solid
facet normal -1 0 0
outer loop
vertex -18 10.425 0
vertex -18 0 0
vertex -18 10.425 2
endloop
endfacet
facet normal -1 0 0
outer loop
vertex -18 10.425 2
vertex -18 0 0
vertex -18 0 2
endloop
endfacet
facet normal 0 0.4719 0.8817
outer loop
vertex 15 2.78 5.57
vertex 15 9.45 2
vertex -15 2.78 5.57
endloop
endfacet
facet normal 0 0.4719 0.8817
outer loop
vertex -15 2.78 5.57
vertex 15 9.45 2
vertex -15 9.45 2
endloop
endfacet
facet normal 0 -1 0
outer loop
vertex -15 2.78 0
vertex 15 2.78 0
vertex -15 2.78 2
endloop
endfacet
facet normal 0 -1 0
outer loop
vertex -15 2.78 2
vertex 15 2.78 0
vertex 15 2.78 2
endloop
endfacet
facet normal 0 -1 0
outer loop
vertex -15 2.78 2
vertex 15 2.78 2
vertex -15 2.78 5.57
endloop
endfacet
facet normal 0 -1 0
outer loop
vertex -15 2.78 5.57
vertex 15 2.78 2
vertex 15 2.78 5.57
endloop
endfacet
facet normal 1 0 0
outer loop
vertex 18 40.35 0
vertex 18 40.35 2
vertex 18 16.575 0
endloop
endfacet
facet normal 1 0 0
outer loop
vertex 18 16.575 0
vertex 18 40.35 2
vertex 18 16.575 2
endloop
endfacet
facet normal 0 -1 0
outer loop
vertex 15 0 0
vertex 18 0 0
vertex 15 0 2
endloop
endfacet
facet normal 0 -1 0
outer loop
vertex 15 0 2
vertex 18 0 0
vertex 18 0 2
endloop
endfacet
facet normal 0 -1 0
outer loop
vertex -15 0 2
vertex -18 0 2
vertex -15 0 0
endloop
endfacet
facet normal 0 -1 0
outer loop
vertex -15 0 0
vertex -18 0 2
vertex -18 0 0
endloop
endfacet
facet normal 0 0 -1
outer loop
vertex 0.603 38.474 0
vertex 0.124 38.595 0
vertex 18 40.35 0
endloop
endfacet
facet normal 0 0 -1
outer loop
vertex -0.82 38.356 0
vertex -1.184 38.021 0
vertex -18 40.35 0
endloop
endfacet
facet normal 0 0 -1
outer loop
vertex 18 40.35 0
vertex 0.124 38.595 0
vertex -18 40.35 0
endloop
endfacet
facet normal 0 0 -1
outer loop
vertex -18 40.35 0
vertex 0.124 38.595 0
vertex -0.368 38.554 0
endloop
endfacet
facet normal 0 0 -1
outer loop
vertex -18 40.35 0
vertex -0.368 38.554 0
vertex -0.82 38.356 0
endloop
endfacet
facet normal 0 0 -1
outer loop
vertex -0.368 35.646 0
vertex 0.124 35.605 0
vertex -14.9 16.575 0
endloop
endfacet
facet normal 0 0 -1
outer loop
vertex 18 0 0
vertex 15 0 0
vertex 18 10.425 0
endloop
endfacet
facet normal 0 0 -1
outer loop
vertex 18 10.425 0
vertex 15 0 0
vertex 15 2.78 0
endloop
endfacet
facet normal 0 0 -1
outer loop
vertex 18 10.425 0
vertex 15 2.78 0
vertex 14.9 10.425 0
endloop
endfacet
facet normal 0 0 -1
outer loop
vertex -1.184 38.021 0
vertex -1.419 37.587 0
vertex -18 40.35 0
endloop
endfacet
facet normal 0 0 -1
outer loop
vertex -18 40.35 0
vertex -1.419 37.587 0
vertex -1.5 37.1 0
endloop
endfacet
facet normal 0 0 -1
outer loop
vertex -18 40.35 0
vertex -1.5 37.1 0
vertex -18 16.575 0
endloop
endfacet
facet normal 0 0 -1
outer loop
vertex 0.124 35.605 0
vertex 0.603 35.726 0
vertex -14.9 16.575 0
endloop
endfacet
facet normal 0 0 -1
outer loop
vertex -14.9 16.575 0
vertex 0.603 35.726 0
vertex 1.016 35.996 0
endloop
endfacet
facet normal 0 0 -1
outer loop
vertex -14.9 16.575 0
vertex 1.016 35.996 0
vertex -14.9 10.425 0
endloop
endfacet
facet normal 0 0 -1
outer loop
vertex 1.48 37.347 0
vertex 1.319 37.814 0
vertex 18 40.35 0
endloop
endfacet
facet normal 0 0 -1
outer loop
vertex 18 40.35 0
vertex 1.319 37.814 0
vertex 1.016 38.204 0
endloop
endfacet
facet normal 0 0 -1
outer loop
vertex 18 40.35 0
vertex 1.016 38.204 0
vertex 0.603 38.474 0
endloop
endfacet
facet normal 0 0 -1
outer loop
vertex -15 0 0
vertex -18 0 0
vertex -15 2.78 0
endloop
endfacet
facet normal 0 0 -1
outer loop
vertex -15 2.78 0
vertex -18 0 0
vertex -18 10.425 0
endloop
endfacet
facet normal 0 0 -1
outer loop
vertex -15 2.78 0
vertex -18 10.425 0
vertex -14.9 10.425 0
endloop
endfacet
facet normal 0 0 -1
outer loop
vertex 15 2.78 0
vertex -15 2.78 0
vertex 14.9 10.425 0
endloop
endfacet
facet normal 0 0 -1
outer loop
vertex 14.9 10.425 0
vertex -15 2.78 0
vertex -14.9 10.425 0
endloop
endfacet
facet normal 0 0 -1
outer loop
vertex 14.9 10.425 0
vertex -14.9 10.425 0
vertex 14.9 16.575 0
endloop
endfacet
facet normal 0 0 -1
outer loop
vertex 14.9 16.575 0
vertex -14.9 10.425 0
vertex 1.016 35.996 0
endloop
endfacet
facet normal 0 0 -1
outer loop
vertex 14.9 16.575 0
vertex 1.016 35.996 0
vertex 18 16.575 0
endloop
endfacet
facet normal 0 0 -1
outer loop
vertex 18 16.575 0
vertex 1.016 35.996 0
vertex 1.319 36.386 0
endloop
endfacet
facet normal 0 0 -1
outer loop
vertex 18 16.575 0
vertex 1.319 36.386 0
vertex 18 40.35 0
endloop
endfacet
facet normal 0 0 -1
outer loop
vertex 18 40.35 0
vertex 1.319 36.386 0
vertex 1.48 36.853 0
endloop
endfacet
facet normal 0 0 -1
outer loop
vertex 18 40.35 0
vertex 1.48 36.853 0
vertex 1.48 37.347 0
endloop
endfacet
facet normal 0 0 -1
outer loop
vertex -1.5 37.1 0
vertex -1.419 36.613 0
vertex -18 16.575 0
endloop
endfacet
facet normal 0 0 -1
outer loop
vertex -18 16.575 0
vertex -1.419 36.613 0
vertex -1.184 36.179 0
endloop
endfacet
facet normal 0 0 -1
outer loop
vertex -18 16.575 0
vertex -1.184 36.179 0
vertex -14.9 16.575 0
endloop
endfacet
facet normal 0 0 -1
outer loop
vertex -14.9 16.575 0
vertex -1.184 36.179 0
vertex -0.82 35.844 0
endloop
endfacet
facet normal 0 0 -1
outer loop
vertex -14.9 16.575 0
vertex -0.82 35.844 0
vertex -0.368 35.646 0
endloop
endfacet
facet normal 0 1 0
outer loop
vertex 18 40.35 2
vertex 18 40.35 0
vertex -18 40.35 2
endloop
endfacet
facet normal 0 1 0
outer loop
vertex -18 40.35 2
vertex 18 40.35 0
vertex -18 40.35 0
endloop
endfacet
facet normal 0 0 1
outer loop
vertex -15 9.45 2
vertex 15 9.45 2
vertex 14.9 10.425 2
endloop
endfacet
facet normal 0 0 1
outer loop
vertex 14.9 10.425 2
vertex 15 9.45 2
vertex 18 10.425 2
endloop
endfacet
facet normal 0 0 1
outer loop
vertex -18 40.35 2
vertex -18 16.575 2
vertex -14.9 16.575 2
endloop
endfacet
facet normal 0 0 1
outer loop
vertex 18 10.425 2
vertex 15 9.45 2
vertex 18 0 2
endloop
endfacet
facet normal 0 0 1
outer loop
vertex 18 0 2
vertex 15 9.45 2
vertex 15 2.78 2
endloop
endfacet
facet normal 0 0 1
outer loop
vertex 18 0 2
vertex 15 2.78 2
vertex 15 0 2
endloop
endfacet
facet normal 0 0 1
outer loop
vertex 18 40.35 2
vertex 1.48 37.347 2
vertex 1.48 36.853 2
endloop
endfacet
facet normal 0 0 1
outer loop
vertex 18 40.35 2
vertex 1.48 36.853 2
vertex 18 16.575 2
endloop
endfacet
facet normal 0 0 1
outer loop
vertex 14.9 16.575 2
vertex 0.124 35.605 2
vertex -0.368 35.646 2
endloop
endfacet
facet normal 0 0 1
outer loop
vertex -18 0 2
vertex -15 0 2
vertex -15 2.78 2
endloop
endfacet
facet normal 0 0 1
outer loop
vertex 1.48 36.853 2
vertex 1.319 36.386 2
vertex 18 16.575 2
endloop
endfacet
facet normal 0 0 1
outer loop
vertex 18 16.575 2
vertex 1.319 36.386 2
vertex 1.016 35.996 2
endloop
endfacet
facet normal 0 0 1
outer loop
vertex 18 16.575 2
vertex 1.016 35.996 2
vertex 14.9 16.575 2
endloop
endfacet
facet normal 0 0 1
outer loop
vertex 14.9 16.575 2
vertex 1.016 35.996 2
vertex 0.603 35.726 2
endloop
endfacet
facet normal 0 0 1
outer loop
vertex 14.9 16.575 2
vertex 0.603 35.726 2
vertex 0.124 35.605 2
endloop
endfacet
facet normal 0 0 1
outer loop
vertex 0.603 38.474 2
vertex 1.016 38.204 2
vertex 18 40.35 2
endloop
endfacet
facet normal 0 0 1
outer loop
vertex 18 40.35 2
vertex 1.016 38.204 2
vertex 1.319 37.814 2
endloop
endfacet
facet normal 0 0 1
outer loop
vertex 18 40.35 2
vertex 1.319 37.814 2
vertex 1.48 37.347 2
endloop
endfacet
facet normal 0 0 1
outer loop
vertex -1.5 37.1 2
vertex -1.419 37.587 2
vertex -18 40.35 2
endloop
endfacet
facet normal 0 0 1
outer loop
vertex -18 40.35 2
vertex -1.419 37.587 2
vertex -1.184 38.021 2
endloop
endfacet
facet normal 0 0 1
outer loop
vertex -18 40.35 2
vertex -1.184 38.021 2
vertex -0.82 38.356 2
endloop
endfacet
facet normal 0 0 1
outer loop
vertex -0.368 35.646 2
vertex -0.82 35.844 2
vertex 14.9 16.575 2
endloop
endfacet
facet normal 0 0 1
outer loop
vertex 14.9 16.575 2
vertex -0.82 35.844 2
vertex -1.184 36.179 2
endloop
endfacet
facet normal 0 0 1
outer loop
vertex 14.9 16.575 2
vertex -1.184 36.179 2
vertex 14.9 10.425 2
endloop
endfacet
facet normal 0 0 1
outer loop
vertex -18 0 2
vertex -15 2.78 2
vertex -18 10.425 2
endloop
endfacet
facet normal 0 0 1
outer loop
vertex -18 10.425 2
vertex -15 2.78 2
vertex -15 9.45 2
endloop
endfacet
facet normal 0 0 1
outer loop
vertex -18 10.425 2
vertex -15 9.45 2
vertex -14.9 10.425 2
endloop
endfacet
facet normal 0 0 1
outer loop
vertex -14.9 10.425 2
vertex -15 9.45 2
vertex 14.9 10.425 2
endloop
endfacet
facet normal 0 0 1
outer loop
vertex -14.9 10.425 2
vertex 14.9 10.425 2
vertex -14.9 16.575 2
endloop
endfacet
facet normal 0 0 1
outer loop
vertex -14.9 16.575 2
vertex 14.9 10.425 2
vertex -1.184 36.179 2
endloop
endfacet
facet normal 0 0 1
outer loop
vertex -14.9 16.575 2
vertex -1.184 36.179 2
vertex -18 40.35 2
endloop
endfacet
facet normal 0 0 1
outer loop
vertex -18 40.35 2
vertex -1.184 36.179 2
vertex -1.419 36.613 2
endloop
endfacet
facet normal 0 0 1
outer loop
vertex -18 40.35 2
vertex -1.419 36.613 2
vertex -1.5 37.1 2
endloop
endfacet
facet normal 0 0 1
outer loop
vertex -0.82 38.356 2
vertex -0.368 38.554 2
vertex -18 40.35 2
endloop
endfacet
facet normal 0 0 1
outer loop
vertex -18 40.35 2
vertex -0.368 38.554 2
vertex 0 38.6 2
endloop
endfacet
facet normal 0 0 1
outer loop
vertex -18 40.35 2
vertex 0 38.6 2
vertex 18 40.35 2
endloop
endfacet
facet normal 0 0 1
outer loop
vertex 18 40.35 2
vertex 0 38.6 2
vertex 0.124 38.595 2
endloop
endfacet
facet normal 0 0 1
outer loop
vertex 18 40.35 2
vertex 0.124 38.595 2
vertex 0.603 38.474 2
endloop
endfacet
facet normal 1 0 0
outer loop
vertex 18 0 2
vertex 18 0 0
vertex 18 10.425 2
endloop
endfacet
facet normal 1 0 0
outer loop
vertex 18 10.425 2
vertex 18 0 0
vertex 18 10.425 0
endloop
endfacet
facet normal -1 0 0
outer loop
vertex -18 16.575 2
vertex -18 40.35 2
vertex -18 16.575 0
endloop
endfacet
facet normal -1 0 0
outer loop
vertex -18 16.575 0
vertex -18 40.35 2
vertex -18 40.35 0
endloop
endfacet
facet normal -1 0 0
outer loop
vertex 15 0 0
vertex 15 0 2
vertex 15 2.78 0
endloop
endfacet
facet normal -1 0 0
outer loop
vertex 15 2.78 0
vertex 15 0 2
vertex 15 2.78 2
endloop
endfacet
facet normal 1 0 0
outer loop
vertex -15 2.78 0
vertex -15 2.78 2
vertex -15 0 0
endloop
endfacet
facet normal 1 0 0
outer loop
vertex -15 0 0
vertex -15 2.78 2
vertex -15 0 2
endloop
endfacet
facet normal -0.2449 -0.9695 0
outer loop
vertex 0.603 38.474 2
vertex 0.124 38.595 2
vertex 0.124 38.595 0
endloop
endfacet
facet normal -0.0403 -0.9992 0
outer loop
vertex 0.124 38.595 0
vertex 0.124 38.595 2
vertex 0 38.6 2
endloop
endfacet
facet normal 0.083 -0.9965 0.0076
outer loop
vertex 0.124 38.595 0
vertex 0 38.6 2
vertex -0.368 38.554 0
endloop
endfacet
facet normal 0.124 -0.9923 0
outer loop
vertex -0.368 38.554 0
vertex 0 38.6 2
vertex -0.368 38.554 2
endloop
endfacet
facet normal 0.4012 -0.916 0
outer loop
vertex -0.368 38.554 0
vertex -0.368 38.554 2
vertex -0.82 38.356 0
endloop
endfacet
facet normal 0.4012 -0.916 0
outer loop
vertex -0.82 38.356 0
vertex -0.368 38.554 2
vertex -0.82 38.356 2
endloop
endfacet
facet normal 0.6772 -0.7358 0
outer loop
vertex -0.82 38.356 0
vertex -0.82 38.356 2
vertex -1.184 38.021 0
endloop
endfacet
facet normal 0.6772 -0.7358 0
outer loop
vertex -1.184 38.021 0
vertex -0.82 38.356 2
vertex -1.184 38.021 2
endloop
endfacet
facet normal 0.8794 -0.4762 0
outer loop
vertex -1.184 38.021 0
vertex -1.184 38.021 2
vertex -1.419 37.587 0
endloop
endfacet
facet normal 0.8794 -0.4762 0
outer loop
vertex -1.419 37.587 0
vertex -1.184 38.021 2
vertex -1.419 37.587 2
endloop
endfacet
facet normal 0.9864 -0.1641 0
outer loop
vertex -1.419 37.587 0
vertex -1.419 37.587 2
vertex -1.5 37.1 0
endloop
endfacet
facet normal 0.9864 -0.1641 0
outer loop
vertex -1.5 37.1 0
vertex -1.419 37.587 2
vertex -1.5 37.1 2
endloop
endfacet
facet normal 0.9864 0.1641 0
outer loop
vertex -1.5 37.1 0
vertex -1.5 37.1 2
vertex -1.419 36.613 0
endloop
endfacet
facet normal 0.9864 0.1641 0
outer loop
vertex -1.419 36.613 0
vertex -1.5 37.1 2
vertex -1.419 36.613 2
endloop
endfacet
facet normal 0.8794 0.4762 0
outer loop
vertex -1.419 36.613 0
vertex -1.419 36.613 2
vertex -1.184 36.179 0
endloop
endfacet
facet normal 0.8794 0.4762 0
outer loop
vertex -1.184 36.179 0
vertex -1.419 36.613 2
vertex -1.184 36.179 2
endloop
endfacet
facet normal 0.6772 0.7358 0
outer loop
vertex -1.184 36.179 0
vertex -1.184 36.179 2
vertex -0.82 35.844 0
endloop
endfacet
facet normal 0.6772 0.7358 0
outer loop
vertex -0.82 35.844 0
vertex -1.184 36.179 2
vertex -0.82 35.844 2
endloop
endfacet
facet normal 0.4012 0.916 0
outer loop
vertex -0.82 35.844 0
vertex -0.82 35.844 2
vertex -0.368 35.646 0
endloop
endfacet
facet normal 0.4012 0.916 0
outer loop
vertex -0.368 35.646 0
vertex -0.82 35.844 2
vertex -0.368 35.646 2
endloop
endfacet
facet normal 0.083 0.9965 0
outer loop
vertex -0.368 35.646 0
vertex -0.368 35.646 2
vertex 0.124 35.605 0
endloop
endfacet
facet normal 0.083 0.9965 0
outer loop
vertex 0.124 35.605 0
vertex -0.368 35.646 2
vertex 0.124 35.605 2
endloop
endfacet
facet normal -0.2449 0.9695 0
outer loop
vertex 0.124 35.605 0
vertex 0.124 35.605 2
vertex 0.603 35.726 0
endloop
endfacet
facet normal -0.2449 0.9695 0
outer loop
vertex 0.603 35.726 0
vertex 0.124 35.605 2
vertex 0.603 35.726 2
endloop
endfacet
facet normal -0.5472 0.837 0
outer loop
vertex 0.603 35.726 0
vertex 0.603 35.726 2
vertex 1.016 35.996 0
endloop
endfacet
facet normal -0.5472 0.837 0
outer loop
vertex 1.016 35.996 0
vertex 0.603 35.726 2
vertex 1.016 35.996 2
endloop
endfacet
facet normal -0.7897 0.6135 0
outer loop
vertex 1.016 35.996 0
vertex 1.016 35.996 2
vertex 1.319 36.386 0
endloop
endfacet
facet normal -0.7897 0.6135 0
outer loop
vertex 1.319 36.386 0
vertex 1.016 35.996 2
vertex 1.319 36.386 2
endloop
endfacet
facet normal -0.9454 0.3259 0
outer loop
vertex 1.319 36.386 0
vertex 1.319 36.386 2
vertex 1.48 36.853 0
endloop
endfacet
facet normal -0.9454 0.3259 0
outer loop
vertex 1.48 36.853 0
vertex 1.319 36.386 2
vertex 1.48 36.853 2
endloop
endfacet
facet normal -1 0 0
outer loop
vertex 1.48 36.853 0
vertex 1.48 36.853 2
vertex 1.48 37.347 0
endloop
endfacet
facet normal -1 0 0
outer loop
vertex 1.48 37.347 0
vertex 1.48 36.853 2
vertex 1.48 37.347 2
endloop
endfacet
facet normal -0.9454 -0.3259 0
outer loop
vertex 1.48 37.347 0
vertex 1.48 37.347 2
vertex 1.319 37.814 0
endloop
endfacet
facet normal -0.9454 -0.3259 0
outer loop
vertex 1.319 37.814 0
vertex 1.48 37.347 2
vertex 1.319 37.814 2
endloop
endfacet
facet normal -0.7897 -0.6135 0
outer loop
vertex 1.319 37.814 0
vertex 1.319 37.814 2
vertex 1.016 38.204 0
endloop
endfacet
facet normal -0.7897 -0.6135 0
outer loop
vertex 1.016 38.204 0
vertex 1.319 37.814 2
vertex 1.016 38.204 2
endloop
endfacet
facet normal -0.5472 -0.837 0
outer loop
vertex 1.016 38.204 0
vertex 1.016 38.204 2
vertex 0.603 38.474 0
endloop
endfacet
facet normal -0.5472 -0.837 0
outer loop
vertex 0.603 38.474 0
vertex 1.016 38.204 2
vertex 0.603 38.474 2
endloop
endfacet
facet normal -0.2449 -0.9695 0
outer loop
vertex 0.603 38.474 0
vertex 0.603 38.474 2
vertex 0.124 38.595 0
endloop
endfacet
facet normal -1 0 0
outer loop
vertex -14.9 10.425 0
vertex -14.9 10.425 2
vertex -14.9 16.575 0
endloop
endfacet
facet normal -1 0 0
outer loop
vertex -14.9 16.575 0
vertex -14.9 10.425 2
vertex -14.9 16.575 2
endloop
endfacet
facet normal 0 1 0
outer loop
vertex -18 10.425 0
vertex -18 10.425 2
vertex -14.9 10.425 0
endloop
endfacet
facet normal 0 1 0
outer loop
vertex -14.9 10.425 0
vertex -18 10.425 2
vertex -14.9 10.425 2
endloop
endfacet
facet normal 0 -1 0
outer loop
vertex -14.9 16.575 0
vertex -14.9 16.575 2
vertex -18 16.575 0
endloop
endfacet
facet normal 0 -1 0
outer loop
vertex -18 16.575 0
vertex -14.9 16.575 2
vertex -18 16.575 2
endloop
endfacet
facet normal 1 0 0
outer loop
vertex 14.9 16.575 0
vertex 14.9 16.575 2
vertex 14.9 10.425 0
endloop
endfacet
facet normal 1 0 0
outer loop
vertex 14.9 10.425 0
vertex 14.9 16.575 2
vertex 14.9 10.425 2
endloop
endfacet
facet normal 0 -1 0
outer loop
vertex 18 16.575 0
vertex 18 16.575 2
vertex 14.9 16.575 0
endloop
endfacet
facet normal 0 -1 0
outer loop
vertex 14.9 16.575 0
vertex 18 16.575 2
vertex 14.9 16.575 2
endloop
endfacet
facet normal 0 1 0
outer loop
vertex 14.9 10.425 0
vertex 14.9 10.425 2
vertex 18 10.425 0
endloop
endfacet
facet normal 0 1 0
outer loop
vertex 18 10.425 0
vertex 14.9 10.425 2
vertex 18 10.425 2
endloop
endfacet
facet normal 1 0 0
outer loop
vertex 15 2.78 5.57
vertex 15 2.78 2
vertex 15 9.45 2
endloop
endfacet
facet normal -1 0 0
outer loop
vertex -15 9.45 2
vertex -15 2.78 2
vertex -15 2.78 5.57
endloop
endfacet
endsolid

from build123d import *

# Parameters (mm, degrees)
BOSS_EXTRUDE1_DEPTH = 18
SKETCH2_R           = 1.5
SKETCH2_W           = 30
SKETCH2_H           = 2.78
CUT_EXTRUDE1_DEPTH  = 6.57
SKETCH3_W           = 3.1
SKETCH3_H           = 6.15
CUT_EXTRUDE2_DEPTH  = 6.57
SKETCH4_W           = 3
SKETCH4_H           = 7.645
CUT_EXTRUDE3_DEPTH  = 4.57


with BuildPart() as part:
    # Sketch1 → Boss-Extrude1 (new body, symmetric)
    with BuildSketch(Plane(origin=(0, 0, 0), x_dir=(0, 0, -1), z_dir=(1, 0, 0))):
        Polygon((0, 0), (0, 40.35), (-2, 40.35), (-2, 9.45), (-5.57, 2.78), (-2, 2.78), (-2, 0), align=None)
    extrude(amount=BOSS_EXTRUDE1_DEPTH, both=True)

    # Sketch2 → Cut-Extrude1 (cut, through all)
    with BuildSketch(Plane(origin=(0, 0, 0), x_dir=(-1, 0, 0), z_dir=(0, 0, -1))):
        with Locations((0, 37.1)):
            Circle(SKETCH2_R)
        with Locations((0, 1.39)):
            Rectangle(SKETCH2_W, SKETCH2_H)
    extrude(amount=-CUT_EXTRUDE1_DEPTH, mode=Mode.SUBTRACT)

    # Sketch3 → Cut-Extrude2 (cut, through all)
    with BuildSketch(Plane(origin=(0, 0, 0), x_dir=(-1, 0, 0), z_dir=(0, 0, -1))):
        with Locations((-16.45, 13.5)):
            Rectangle(SKETCH3_W, SKETCH3_H)
        with Locations((16.45, 13.5)):
            Rectangle(SKETCH3_W, SKETCH3_H)
    extrude(amount=-CUT_EXTRUDE2_DEPTH, mode=Mode.SUBTRACT)

    # Sketch4 → Cut-Extrude3 (cut, through all)
    with BuildSketch(Plane.XY.offset(2)):
        with Locations((-16.5, 6.6025)):
            Rectangle(SKETCH4_W, SKETCH4_H)
        with Locations((16.5, 6.6025)):
            Rectangle(SKETCH4_W, SKETCH4_H)
    extrude(amount=CUT_EXTRUDE3_DEPTH, mode=Mode.SUBTRACT)


solid = part.part
